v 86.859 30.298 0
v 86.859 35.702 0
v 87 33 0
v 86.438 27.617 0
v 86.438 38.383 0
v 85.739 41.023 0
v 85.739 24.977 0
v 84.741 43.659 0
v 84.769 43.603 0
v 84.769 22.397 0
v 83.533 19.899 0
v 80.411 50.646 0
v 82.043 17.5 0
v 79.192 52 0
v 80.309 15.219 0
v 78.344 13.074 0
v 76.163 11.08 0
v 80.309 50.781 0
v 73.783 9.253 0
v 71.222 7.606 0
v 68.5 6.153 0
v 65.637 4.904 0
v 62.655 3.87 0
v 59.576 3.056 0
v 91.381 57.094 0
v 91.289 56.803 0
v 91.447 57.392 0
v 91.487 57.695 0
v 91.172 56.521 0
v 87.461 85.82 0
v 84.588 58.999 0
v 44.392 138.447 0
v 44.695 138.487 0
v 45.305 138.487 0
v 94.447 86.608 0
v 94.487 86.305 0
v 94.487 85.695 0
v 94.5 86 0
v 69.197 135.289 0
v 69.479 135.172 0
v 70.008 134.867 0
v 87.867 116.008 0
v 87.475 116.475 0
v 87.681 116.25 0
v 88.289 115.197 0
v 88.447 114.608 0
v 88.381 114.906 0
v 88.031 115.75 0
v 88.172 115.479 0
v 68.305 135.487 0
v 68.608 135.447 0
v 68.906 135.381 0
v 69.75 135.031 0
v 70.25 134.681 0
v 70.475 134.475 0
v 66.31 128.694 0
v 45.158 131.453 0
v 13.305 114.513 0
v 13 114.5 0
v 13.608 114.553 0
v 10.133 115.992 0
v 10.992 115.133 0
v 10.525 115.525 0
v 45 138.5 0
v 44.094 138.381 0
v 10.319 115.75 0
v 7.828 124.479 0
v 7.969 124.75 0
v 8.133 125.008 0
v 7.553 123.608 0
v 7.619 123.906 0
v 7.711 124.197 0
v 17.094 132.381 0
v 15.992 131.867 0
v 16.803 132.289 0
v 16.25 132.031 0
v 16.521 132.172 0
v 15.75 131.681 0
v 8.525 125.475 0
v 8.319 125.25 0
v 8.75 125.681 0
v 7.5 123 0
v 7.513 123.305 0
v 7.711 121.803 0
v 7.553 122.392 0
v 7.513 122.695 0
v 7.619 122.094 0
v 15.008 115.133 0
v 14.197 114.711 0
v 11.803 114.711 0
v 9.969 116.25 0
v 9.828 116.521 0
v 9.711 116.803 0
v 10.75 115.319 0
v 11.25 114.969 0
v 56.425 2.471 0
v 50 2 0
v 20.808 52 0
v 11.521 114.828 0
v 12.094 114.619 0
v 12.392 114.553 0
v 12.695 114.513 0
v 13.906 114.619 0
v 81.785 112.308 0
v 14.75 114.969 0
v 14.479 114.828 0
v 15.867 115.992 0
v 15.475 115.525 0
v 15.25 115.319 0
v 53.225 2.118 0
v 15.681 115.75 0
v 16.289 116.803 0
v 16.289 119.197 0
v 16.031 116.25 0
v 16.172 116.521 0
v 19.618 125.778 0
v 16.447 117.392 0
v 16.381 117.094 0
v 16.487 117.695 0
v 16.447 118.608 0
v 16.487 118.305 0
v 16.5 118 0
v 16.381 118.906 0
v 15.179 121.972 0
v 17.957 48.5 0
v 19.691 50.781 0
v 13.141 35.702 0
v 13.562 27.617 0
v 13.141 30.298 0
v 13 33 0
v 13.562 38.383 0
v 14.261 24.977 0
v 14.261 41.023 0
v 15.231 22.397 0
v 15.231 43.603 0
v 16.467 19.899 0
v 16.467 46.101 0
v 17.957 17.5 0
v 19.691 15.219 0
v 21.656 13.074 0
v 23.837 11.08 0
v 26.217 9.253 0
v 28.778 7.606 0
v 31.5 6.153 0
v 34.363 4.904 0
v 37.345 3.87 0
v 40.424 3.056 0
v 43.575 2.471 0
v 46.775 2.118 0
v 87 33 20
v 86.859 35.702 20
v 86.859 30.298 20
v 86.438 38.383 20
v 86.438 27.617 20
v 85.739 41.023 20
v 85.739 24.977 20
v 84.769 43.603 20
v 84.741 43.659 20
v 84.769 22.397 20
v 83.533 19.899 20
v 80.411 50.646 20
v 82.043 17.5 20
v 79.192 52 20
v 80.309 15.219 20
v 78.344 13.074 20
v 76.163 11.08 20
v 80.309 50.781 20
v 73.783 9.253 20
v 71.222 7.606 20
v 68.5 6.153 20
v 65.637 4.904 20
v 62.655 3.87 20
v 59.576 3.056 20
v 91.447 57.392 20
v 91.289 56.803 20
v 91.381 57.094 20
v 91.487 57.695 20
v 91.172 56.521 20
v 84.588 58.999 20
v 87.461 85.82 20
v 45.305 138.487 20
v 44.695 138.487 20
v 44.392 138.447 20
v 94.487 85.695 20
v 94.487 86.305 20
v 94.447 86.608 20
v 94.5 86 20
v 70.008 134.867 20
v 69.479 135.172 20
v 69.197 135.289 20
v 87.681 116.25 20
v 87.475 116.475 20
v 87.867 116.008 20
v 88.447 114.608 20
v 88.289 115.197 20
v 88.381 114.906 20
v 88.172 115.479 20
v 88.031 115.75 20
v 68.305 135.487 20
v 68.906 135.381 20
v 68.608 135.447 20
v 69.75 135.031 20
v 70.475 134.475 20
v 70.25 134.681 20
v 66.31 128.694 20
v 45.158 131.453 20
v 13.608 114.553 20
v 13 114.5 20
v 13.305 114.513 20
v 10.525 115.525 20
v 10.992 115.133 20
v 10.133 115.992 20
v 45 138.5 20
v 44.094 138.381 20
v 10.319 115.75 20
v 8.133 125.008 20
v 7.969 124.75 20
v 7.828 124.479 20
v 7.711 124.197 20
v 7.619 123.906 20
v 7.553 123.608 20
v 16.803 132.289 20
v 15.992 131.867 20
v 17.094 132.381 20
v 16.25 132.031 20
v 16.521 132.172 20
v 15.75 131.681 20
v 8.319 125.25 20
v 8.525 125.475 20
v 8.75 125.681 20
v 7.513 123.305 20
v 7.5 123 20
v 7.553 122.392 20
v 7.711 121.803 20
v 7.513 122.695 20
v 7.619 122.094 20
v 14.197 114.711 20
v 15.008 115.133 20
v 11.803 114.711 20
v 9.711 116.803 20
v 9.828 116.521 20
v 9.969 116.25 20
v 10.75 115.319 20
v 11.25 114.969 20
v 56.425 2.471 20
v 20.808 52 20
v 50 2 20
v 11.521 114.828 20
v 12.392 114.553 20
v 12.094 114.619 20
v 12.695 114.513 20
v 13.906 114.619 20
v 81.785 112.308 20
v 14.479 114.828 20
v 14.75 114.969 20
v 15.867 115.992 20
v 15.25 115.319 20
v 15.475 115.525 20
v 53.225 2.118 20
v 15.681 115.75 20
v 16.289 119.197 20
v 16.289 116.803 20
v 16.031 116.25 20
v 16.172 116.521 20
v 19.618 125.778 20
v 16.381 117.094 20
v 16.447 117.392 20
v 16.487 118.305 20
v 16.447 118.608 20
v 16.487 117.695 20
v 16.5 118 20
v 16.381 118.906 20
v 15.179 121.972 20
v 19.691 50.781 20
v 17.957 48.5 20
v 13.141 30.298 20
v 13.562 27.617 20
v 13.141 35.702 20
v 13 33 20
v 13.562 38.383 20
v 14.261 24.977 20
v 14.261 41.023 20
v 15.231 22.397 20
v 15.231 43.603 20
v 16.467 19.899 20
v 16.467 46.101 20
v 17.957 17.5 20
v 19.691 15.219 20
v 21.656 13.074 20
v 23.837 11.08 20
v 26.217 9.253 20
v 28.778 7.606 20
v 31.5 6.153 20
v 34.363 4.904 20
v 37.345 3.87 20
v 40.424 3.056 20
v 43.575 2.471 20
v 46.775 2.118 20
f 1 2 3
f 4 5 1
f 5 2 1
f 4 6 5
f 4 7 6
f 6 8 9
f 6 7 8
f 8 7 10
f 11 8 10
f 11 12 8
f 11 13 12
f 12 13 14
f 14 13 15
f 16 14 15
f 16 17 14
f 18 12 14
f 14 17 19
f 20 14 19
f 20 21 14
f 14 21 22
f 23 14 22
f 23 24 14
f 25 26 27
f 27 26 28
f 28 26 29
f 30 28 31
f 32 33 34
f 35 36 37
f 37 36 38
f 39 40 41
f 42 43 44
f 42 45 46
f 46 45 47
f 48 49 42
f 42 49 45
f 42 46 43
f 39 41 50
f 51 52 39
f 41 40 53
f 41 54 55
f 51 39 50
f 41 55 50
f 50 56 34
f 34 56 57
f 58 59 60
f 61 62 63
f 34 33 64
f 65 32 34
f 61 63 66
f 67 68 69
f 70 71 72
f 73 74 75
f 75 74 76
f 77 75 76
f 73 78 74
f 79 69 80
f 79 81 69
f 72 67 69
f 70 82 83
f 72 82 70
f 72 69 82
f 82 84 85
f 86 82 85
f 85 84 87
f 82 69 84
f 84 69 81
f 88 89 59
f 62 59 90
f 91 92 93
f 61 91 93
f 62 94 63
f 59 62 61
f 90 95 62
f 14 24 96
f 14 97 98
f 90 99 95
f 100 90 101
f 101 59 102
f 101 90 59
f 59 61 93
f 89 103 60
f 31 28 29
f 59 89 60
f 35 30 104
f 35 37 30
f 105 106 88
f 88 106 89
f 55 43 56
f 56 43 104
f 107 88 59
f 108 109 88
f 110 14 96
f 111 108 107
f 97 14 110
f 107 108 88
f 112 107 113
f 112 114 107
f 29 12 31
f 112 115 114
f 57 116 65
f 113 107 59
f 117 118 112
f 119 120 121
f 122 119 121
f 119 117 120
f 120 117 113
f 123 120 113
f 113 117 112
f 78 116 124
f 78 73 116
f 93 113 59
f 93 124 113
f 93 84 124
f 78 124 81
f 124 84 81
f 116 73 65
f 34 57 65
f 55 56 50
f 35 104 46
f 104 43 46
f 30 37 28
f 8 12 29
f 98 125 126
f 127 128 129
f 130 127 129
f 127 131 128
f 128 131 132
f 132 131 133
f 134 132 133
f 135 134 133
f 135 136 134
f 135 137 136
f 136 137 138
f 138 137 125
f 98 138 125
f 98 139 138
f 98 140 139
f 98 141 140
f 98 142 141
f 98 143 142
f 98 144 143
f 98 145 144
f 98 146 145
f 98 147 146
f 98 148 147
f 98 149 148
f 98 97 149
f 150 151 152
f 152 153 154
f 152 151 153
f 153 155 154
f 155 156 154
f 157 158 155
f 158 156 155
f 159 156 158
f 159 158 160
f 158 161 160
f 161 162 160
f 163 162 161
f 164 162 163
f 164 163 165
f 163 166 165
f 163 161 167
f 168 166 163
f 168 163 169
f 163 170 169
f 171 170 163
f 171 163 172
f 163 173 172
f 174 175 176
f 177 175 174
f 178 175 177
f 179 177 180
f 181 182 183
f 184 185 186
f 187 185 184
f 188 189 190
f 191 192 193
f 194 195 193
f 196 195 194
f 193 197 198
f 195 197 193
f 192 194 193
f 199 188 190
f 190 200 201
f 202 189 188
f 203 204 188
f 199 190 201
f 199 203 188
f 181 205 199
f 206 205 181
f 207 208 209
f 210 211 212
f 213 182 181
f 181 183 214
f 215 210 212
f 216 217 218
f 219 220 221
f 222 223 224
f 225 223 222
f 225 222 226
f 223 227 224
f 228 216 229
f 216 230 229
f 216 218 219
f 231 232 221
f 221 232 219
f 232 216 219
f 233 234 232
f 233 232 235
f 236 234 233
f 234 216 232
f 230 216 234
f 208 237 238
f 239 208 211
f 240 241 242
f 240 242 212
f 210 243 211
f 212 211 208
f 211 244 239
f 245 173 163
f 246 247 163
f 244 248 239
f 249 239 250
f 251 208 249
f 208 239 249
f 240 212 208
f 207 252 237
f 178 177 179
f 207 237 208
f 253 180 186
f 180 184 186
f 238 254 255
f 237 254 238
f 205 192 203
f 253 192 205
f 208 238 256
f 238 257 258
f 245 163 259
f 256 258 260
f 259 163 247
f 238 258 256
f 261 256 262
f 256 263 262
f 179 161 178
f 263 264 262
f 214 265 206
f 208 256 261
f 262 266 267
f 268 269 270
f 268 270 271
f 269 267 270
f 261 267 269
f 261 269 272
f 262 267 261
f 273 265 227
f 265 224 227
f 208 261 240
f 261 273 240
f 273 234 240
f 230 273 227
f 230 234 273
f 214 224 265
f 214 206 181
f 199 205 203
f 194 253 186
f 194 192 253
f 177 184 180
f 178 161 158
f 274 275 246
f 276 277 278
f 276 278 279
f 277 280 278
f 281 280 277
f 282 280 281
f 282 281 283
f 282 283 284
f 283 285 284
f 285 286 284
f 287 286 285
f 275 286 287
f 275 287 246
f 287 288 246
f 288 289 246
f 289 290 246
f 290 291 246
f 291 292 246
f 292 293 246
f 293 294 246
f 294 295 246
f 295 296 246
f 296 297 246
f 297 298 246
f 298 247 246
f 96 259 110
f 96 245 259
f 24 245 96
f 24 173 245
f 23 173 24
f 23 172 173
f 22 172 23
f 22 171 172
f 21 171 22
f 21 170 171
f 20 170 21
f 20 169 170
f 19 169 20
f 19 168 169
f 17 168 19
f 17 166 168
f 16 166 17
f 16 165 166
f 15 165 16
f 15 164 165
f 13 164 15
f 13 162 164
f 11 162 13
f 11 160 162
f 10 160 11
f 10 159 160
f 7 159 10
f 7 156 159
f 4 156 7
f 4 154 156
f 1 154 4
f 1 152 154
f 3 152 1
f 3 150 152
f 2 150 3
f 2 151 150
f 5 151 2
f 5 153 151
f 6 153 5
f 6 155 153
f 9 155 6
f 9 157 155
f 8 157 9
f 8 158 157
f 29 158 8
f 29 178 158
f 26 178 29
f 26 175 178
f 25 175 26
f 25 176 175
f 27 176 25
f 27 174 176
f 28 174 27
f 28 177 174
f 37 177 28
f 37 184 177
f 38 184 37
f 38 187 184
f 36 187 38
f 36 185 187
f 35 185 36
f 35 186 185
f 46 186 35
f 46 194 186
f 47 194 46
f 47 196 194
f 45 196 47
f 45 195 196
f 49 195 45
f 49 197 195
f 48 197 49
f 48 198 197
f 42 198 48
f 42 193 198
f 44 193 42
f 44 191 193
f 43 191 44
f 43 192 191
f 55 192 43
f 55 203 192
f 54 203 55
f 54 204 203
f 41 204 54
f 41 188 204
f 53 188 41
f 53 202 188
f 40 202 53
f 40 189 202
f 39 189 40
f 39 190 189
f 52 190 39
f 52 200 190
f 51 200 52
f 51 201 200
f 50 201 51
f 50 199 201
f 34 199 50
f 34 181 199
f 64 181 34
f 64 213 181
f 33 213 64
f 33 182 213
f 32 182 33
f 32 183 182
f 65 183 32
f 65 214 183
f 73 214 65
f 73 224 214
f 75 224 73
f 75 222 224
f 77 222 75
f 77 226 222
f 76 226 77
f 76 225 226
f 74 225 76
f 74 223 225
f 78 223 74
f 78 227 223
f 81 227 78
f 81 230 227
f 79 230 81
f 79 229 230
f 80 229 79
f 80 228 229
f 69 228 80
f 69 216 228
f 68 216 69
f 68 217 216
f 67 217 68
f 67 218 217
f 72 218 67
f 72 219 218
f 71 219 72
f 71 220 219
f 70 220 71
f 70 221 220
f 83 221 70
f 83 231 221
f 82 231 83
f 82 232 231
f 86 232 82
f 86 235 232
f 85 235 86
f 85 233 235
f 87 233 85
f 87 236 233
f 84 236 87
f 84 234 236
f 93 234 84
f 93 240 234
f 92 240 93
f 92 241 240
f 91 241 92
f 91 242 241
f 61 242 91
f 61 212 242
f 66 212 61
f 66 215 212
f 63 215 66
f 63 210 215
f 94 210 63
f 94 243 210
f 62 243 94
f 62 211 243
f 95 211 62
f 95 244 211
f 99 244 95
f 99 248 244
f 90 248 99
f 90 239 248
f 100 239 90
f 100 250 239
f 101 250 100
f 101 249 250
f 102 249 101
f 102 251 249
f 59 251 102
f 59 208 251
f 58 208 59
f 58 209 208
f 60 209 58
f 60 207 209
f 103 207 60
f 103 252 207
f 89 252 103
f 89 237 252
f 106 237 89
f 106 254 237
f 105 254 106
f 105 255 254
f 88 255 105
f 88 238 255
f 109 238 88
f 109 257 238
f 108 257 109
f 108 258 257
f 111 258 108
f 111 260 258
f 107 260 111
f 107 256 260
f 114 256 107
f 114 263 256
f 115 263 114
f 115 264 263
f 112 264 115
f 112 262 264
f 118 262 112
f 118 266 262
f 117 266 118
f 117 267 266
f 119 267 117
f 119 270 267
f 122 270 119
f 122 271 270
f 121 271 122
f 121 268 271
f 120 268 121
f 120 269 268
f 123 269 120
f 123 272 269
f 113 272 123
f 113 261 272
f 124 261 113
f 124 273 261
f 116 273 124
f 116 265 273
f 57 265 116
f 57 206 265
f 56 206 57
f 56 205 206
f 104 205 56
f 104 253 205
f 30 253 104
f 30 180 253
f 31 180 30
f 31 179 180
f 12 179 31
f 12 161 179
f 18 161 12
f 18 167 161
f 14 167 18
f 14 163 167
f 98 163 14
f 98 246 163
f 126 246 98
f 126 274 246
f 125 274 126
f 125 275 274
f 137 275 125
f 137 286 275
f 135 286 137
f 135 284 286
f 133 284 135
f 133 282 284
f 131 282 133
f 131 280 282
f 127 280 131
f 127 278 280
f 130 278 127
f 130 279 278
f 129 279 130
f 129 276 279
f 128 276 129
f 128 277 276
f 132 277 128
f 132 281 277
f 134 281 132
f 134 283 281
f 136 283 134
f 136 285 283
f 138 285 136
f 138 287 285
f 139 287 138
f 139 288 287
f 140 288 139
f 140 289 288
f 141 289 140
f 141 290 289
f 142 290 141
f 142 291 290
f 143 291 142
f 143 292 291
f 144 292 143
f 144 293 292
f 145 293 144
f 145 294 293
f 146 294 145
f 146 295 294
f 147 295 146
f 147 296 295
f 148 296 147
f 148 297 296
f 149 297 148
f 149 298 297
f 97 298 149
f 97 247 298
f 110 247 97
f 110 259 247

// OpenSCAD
// pursehanger_deep — copied from Purse_Hanger.stl. A deep ~270 hook: a small lip
// at the top-left, a thin ribbon sweeping over the top and down the right, then
// flowing into a PARTIAL-oval (D-shaped) lobe at the bottom where the bag straps
// rest. The big open mouth on the left drops over the table edge.
//
// The ribbon runs well INTO the lobe so the two merge as one solid piece (no weak
// neck), and the lobe is only the bottom portion of an oval (flat top), like the
// reference. Side profile in XY, extruded along +Z -> support-free.

/* [Profile] */
rib_t = 7;     // thickness of the thin hook ribbon

/* [Lobe] — bottom portion of an ellipse */
lobe_cx = 50;  lobe_cy = 33;     // ellipse center
lobe_a  = 37;  lobe_b  = 31;     // ellipse semi-axes (x, y)
lobe_top = 52;                   // cut the oval flat here (partial oval)

/* [Build] */
width = 20;    // width across (Z)

$fn = 72;

// thin hook ribbon centerline, traced from the reference; the tail runs deep into
// the lobe so the union is one solid piece.
hook = [
  [13, 118], [11, 123], [18, 129], [45, 135], [68, 132],
  [85, 114], [91, 86], [88, 58], [80, 42], [60, 36], [45, 37]
];

module ribbon(p, t) {
  for (i = [0 : len(p)-2])
    hull() { translate(p[i]) circle(d=t); translate(p[i+1]) circle(d=t); }
}

module lobe() {
  intersection() {
    translate([lobe_cx, lobe_cy]) scale([lobe_a, lobe_b]) circle(r = 1);  // ellipse
    translate([lobe_cx - lobe_a, lobe_cy - lobe_b])                       // keep y <= lobe_top
      square([2*lobe_a, lobe_top - (lobe_cy - lobe_b)]);
  }
}

module pursehanger_deep() {
  linear_extrude(width)
    union() { ribbon(hook, rib_t); lobe(); }
}

pursehanger_deep();
